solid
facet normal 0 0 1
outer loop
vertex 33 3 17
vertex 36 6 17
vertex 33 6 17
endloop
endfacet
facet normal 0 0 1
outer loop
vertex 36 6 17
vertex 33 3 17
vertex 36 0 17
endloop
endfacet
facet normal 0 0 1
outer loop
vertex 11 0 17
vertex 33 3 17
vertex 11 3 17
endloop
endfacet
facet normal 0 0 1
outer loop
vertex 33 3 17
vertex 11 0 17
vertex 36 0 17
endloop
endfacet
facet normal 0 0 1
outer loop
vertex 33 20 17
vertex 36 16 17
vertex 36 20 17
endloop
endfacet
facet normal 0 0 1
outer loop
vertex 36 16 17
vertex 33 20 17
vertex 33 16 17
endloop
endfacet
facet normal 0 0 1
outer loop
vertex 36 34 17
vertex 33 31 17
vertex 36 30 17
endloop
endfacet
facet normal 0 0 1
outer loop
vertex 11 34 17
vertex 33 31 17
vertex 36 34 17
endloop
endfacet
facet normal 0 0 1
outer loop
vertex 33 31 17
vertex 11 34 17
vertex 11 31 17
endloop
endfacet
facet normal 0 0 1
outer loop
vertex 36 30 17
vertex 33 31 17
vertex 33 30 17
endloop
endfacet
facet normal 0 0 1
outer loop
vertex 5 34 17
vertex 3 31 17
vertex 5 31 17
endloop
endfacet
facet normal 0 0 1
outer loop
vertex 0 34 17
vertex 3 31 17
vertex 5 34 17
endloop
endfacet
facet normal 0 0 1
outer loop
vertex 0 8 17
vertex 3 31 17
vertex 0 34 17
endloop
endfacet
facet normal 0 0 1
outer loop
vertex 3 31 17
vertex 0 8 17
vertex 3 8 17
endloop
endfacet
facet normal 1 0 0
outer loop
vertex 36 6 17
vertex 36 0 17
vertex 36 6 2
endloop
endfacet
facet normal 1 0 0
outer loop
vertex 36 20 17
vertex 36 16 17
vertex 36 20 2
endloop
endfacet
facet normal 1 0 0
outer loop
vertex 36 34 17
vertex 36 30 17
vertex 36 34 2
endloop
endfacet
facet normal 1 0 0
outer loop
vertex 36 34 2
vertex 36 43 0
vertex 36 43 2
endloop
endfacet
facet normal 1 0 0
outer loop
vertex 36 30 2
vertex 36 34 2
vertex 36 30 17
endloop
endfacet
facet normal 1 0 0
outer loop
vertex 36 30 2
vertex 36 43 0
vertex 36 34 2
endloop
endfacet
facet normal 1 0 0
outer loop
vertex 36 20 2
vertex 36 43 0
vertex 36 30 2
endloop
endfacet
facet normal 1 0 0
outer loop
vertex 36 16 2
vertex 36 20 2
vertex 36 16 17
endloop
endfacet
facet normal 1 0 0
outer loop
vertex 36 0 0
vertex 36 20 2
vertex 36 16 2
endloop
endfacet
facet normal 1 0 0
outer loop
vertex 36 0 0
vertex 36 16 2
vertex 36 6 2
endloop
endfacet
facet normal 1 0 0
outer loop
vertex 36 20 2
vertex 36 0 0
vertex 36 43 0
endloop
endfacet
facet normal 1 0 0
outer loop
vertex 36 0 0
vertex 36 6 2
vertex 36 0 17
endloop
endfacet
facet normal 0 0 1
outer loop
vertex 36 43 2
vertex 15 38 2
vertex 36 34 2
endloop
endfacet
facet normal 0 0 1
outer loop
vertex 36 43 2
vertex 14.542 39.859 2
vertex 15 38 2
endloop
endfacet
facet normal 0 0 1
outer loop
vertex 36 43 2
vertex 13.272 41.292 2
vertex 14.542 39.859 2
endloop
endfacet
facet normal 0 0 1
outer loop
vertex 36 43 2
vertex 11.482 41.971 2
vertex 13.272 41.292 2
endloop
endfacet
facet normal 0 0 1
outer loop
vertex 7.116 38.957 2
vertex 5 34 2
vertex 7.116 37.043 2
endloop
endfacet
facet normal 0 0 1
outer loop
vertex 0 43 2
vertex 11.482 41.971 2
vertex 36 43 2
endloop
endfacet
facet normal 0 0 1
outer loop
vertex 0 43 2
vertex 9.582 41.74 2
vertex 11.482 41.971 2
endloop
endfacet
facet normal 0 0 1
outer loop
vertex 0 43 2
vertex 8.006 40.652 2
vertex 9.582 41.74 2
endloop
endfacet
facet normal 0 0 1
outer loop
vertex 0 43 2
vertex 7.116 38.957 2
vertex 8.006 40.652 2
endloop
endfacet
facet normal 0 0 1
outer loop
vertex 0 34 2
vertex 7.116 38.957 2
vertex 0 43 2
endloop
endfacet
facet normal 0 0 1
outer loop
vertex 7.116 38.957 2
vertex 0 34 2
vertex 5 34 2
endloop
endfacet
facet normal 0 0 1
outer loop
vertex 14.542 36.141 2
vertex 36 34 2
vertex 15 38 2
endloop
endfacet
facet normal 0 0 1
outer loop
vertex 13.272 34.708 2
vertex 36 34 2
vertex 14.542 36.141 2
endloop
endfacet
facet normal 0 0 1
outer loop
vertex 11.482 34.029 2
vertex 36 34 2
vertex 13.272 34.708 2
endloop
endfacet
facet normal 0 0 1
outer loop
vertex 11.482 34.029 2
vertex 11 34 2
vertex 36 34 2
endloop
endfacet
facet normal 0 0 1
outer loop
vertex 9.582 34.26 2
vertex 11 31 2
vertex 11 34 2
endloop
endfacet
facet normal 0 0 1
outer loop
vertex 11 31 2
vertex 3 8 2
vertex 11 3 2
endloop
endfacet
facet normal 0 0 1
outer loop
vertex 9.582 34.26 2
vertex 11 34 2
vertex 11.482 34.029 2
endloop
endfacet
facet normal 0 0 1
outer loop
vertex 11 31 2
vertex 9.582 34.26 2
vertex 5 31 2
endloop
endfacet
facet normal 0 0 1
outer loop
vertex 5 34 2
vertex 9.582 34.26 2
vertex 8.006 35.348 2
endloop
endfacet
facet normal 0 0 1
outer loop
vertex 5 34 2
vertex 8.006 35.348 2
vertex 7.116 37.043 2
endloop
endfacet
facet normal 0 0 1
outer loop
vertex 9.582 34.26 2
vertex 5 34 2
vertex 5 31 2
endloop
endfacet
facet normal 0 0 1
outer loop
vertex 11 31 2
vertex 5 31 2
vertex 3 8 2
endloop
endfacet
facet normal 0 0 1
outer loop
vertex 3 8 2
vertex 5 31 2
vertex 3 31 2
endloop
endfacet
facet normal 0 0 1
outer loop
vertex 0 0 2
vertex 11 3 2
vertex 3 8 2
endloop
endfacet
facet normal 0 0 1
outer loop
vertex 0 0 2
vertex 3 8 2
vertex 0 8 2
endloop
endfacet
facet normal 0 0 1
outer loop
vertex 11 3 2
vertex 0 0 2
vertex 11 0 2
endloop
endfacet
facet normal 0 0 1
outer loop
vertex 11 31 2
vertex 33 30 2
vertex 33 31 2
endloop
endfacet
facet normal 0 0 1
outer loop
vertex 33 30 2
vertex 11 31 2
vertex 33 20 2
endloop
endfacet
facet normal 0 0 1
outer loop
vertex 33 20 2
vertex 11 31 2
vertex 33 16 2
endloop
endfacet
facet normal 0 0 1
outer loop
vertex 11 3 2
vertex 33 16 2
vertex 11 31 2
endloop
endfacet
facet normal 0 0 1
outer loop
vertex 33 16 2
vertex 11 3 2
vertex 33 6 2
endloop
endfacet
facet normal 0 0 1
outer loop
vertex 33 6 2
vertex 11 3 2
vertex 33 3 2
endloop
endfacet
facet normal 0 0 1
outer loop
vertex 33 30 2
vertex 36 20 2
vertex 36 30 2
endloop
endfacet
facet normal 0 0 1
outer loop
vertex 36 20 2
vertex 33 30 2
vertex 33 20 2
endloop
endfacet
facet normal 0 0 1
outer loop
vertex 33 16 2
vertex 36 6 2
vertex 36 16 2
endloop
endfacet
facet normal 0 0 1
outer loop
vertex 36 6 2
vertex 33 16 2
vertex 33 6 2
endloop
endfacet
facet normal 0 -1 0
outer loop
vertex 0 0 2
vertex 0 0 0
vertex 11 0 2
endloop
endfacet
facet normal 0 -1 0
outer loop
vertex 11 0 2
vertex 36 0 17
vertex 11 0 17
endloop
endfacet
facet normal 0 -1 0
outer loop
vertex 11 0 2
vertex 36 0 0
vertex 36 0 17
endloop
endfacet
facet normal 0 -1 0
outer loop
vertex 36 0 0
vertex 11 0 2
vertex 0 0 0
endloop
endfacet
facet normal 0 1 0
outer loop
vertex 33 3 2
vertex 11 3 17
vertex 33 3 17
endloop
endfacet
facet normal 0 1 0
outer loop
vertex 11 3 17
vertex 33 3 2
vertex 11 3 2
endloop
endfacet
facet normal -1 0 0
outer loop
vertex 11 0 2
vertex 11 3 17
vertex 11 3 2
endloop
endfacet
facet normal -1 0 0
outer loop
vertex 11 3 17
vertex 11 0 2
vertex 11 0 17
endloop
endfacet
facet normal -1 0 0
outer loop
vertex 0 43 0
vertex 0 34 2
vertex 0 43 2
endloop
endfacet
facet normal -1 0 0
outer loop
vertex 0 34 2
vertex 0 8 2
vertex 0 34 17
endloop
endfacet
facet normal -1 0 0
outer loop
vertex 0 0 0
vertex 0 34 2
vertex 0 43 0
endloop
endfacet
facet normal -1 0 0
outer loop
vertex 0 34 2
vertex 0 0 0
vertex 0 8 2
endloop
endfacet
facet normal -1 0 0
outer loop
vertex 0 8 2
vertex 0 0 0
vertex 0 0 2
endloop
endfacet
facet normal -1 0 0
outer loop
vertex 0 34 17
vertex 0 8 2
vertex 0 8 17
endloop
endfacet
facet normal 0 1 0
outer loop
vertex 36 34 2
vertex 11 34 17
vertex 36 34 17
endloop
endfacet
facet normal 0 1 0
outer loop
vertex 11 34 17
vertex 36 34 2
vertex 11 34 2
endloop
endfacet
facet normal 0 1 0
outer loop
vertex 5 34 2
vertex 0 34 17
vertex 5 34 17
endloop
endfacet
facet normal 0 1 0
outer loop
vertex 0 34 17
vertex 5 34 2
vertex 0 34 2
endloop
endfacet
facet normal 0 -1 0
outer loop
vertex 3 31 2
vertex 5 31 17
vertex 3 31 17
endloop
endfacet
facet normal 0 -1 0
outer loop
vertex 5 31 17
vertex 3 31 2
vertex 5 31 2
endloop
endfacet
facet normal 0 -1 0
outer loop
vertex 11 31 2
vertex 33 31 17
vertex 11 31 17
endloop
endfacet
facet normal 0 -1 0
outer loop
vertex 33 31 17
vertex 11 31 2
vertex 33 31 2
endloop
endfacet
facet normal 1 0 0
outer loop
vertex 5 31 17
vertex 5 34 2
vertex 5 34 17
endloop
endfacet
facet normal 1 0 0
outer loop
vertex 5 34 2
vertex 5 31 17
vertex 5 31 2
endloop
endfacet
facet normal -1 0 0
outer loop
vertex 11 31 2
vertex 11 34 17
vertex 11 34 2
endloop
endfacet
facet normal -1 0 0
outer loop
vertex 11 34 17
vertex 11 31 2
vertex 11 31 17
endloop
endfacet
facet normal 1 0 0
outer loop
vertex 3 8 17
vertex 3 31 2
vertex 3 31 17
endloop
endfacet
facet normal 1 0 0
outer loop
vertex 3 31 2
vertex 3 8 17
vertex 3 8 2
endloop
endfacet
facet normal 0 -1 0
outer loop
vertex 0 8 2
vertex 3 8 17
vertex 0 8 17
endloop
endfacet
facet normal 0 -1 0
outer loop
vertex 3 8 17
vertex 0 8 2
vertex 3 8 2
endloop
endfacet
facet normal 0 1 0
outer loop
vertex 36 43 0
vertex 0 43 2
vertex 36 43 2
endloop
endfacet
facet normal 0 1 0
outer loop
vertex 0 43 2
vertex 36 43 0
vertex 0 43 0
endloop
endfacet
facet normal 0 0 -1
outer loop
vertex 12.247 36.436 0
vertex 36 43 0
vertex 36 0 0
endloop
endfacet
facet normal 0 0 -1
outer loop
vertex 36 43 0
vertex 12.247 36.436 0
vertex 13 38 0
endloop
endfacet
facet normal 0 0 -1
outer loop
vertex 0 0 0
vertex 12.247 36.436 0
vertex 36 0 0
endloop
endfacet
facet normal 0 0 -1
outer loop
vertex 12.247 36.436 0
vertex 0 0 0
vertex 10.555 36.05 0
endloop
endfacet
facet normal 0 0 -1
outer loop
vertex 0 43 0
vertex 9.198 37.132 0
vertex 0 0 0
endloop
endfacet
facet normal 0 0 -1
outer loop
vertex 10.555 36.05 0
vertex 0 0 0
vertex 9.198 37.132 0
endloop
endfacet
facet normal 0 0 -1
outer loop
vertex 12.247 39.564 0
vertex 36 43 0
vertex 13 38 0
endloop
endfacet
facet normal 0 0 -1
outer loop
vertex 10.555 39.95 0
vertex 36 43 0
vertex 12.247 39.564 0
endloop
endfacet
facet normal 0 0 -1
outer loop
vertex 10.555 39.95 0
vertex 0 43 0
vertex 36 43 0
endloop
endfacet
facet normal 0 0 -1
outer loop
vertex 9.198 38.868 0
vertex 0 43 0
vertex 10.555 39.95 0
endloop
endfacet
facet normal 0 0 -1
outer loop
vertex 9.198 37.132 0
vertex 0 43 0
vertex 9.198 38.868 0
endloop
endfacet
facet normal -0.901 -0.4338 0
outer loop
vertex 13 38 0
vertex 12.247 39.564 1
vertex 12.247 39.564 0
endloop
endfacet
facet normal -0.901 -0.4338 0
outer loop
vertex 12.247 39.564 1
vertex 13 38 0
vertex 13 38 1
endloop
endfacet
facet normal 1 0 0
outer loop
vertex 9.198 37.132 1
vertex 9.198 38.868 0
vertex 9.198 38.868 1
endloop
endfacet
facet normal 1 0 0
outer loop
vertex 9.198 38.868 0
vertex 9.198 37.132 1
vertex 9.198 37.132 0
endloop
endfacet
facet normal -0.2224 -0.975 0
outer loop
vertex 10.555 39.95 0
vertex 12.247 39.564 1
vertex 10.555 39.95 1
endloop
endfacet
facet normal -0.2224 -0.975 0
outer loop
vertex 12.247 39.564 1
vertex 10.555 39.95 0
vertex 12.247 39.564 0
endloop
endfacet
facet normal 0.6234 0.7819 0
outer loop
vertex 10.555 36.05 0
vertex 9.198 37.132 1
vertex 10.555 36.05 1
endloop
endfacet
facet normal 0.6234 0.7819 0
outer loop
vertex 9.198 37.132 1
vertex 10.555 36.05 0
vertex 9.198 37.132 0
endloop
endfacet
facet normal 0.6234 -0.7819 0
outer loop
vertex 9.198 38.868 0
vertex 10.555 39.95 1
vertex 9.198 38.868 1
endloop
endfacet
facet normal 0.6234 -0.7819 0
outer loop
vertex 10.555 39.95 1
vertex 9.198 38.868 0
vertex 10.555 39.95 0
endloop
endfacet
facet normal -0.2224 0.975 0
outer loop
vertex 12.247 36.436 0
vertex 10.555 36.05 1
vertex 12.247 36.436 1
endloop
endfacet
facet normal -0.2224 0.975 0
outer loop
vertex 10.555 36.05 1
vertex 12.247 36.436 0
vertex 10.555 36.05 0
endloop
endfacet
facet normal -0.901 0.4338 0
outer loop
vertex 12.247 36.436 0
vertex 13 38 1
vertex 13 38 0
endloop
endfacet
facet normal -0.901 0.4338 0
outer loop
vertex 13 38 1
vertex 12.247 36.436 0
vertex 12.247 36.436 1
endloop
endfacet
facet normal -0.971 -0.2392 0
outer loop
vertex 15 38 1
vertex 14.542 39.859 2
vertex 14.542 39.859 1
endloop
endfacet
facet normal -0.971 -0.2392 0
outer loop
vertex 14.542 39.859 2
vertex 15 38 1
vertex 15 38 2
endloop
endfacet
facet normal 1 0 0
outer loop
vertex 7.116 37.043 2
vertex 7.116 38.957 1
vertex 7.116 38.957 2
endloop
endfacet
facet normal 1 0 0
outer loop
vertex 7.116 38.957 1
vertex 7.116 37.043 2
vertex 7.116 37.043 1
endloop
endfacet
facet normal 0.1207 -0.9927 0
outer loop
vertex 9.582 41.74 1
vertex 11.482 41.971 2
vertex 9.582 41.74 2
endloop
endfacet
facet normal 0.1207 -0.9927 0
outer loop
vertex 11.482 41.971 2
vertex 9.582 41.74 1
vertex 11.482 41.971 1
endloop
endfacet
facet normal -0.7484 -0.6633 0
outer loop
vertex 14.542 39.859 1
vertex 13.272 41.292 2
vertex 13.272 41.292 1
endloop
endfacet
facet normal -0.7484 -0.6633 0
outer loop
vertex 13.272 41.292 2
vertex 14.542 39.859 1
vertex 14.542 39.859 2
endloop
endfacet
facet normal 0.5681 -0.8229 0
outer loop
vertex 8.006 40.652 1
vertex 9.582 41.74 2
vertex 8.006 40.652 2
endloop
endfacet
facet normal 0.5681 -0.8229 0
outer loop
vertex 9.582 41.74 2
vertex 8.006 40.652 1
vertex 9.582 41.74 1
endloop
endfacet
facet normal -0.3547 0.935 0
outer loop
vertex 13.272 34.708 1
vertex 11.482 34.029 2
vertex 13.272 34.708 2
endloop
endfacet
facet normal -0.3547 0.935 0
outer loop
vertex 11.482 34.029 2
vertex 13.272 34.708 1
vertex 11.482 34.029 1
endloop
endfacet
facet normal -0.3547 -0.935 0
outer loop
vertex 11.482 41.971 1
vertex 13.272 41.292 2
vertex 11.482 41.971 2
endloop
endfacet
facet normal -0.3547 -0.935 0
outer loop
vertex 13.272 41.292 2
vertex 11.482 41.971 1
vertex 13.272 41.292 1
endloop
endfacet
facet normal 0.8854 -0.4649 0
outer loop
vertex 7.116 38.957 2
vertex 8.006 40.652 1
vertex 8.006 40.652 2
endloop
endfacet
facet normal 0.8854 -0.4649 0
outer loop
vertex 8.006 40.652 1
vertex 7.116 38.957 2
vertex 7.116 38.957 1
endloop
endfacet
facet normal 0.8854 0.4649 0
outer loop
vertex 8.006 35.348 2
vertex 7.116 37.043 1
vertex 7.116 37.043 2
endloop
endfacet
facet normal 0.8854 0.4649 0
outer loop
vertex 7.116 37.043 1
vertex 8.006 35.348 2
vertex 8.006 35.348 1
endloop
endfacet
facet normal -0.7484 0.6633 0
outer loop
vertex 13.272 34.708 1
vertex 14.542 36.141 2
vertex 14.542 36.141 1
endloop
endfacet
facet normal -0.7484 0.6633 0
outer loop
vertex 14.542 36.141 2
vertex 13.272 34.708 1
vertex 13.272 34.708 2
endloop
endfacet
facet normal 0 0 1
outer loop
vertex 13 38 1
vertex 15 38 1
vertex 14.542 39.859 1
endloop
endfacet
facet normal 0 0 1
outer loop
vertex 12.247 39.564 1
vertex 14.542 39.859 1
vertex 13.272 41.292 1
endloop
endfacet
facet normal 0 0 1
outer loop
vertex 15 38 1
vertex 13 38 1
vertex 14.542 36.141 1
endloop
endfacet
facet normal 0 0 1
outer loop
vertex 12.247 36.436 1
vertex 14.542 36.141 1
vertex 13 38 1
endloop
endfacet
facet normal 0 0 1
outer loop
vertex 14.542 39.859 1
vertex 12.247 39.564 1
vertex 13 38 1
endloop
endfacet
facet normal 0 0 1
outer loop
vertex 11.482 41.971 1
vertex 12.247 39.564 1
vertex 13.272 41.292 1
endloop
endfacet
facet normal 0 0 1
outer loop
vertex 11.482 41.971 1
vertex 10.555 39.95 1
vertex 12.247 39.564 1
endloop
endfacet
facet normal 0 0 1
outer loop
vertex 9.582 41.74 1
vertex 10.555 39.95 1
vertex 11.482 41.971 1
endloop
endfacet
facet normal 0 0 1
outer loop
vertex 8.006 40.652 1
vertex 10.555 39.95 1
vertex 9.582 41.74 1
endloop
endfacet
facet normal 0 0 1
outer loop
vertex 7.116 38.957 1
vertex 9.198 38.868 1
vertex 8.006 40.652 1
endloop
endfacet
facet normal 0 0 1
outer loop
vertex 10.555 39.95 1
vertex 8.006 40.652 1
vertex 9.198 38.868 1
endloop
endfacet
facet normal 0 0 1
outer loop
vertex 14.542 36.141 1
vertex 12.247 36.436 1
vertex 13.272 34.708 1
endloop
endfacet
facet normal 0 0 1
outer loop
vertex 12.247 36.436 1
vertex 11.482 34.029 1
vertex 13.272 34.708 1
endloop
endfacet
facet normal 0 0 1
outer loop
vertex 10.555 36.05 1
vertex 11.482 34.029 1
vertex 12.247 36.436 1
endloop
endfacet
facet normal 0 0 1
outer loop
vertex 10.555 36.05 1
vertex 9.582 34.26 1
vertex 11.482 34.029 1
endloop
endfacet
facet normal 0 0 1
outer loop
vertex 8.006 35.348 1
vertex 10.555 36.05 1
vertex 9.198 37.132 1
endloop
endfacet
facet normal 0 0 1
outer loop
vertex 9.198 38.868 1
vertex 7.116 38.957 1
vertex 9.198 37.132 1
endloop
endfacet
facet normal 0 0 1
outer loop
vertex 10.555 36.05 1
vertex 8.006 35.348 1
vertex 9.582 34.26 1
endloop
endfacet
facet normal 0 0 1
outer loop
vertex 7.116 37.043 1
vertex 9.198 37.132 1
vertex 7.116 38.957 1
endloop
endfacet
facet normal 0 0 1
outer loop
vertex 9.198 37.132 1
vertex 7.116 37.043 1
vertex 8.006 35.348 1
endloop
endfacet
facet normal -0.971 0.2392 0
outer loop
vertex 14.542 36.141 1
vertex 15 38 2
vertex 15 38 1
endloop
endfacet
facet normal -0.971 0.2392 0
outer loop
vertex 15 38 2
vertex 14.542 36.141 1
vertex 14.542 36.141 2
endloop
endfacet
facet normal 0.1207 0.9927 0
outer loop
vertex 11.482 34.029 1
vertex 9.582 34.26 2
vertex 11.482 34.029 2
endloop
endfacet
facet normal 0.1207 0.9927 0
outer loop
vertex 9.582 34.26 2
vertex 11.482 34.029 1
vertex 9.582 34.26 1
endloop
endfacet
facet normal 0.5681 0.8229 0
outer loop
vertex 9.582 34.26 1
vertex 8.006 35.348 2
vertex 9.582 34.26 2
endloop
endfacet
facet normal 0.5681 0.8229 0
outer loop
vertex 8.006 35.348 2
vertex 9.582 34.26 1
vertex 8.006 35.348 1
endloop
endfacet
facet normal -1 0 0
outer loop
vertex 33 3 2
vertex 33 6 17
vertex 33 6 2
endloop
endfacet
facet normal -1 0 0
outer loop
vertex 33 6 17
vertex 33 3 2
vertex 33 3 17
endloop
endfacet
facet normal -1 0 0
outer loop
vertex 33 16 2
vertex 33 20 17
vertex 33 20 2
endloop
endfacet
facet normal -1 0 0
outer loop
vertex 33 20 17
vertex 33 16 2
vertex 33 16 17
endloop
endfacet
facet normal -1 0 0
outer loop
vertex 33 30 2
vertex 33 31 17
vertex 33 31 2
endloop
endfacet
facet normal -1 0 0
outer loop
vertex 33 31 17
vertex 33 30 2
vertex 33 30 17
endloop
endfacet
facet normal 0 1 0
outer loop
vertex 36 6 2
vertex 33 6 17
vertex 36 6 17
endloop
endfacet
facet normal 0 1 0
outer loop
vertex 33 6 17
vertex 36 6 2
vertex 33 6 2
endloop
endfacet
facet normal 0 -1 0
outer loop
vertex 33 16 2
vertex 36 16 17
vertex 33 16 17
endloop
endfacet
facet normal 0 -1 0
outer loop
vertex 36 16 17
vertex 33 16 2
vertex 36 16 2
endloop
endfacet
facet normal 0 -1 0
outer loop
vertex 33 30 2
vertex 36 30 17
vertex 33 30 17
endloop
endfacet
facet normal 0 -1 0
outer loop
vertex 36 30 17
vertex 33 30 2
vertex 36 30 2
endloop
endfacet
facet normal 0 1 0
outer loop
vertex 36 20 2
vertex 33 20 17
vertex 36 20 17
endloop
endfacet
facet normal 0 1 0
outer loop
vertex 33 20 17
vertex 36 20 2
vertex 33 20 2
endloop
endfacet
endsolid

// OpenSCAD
difference()
{
    cube([36,43,2]);
    
    translate([11,38,-2]) cylinder(h=4,r1=2,r2=2);
    translate([11,38,1]) cylinder(h=1,r1=4,r2=4);
}
difference()
{
    translate([0,0,2]) cube([36,3,15]);
    
    translate([0,0,2]) cube([11,3,15]);
}
difference()
{
    translate([0,31,2]) cube([36,3,15]);
    
    translate([5,31,2]) cube([6,3,15]);
}
difference()
{
    translate([0,0,2]) cube([3,33,15]);
    
    translate([0,0,2]) cube([3,8,15]);
}
difference()
{
    translate([33,0,2]) cube([3,33,15]);
    translate([33,6,2]) cube([3,10,15]);
    translate([33,20,2]) cube([3,10,15]);
}
